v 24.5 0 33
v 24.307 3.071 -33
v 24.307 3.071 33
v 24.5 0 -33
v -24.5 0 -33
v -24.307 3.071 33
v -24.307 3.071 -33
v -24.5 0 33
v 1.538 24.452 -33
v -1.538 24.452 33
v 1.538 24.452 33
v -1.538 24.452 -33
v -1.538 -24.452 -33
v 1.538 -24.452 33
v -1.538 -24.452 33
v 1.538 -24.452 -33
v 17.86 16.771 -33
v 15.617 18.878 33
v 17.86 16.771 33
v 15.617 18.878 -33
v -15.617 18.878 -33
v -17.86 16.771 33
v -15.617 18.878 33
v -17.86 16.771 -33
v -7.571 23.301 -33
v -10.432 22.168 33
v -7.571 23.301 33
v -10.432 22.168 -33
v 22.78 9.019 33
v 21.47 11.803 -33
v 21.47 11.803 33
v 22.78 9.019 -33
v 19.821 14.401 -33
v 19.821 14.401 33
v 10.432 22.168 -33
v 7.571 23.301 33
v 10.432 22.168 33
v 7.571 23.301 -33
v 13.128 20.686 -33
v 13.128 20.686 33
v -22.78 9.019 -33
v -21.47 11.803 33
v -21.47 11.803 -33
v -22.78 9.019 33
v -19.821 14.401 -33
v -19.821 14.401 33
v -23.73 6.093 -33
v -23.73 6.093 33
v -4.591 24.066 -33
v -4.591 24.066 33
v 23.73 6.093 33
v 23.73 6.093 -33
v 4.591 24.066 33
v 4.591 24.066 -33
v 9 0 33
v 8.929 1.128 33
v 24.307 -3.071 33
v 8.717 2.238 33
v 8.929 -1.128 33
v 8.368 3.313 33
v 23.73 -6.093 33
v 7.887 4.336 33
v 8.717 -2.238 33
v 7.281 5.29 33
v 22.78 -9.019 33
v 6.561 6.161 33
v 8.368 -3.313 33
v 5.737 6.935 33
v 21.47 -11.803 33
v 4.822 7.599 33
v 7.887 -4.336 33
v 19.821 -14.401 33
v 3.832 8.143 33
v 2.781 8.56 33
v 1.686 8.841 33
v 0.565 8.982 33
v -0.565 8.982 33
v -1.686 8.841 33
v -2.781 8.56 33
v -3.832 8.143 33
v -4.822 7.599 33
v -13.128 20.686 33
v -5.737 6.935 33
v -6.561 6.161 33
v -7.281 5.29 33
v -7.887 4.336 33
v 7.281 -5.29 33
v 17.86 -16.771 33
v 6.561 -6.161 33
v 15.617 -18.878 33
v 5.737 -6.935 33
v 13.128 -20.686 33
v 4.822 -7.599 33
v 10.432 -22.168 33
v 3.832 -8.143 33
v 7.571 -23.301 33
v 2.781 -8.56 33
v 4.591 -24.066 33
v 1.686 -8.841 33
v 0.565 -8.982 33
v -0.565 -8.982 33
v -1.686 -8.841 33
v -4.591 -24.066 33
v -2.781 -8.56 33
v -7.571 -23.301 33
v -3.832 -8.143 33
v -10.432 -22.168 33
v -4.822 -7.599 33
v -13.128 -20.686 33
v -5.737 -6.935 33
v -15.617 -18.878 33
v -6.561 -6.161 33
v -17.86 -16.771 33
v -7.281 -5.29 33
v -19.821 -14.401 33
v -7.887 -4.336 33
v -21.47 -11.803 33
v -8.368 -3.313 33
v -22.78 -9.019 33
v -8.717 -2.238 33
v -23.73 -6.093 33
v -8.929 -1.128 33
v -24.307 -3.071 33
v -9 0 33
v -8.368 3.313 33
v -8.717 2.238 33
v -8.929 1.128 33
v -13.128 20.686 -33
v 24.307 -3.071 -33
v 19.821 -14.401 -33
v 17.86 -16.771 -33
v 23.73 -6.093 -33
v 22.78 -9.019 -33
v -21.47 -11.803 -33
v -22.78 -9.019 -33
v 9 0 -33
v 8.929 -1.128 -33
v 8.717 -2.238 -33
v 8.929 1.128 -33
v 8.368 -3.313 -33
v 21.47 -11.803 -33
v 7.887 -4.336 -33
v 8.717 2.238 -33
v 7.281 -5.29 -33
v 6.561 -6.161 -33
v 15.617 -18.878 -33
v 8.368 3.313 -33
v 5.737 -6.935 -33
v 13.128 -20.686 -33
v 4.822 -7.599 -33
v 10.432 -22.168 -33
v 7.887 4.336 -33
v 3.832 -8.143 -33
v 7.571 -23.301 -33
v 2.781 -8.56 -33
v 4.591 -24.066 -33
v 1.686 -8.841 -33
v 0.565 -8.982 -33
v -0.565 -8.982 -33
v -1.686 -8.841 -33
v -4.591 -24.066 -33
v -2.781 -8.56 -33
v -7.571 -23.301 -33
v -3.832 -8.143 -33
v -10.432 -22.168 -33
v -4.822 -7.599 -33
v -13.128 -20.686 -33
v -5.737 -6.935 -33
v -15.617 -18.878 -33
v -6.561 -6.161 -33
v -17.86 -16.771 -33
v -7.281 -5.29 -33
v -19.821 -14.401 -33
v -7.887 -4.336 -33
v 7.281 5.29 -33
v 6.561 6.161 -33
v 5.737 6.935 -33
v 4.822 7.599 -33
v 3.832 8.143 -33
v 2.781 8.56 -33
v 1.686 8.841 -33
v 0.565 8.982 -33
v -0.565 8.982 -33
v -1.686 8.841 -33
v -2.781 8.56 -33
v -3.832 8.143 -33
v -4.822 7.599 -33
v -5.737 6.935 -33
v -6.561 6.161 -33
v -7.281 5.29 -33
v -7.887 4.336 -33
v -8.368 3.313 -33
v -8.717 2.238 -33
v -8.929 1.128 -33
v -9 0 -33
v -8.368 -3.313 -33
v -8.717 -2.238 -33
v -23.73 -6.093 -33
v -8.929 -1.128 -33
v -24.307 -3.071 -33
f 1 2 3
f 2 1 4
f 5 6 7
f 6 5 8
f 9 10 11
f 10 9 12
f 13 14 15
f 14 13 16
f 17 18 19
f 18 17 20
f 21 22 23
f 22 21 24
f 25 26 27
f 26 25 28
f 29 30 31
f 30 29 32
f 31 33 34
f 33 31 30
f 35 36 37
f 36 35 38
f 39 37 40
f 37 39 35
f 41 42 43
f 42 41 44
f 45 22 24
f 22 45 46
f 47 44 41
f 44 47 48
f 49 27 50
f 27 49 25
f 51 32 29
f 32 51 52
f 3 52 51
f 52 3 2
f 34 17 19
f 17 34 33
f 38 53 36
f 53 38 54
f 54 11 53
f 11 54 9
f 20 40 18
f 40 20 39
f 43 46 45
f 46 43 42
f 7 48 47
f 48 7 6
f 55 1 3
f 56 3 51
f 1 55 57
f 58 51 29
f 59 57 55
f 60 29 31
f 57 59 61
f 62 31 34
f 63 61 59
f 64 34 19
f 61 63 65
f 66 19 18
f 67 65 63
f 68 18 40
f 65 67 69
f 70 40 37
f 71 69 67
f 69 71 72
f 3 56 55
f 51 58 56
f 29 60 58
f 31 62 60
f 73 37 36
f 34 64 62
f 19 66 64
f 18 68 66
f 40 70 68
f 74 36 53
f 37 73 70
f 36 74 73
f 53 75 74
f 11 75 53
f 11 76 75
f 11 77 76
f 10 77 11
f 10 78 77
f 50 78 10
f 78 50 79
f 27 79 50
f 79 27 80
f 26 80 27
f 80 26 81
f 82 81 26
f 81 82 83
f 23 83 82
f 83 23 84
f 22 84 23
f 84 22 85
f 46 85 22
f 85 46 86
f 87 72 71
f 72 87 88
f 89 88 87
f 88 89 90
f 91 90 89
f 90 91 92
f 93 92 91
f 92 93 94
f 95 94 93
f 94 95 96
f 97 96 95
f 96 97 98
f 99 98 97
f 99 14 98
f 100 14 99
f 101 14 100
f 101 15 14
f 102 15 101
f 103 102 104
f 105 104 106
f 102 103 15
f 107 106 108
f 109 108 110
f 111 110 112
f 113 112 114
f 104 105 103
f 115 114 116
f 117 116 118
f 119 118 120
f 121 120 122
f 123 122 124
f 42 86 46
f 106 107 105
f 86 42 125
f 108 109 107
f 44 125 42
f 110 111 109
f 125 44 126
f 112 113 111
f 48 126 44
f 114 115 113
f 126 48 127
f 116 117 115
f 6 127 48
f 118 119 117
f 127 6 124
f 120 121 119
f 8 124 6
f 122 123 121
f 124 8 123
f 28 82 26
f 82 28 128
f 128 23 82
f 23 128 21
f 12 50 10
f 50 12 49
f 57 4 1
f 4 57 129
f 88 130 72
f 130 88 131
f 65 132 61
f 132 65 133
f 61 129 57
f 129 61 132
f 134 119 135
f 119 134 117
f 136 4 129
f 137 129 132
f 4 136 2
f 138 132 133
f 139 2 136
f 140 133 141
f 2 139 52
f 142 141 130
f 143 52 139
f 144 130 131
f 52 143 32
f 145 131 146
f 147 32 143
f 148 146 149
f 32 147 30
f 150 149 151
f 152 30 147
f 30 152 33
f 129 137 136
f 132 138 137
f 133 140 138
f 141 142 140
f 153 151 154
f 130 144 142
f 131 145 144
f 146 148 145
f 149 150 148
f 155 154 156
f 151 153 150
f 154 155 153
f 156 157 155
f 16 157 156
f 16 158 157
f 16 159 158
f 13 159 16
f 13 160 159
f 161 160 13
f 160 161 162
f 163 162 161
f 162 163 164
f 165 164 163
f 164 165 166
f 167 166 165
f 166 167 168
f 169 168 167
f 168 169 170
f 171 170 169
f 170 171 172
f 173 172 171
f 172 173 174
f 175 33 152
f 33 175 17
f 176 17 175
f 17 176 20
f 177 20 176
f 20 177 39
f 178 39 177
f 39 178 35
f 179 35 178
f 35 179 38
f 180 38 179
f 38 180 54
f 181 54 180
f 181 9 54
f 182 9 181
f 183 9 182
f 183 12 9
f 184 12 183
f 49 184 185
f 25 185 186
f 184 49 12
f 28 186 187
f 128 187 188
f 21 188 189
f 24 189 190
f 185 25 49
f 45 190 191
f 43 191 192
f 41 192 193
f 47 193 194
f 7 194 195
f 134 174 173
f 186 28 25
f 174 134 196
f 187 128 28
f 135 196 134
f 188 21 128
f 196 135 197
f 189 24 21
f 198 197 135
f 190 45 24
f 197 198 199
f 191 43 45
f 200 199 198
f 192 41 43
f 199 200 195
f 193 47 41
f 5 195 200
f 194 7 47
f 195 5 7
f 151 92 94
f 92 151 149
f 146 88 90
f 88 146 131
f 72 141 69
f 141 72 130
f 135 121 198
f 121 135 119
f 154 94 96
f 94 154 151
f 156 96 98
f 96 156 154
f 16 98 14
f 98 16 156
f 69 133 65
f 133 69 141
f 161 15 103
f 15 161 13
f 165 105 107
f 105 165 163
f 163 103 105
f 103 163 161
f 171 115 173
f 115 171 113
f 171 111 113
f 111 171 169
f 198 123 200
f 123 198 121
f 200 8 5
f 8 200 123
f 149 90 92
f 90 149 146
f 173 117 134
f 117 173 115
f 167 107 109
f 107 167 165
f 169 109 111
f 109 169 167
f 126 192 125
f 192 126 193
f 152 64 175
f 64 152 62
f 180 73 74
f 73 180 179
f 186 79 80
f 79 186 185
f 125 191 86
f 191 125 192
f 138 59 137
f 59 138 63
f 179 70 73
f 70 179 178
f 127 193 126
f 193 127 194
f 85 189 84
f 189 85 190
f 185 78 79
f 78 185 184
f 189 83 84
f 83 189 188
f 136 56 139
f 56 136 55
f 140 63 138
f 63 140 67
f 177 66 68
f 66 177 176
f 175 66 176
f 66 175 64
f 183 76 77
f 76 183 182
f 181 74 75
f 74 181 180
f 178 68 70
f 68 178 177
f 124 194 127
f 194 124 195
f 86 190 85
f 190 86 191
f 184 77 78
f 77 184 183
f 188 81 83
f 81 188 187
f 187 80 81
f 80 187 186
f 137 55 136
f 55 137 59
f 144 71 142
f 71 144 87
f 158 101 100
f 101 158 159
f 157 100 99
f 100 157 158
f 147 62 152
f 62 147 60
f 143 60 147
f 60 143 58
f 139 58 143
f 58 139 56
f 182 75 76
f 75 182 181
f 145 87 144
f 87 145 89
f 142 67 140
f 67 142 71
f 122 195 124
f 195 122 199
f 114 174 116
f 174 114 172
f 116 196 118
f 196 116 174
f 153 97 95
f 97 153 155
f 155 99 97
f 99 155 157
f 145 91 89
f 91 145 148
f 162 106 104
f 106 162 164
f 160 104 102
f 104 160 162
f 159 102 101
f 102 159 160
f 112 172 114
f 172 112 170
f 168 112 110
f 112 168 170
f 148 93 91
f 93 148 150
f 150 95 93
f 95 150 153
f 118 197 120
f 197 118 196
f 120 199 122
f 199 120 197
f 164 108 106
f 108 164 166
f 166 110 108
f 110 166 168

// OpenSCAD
$fn = 50;


difference() {
	union() {
		translate(v = [0, 0, -33.0000000000]) {
			cylinder(h = 66, r = 24.5000000000);
		}
	}
	union() {
		translate(v = [0, 0, -100.0000000000]) {
			cylinder(h = 200, r = 9);
		}
	}
}
